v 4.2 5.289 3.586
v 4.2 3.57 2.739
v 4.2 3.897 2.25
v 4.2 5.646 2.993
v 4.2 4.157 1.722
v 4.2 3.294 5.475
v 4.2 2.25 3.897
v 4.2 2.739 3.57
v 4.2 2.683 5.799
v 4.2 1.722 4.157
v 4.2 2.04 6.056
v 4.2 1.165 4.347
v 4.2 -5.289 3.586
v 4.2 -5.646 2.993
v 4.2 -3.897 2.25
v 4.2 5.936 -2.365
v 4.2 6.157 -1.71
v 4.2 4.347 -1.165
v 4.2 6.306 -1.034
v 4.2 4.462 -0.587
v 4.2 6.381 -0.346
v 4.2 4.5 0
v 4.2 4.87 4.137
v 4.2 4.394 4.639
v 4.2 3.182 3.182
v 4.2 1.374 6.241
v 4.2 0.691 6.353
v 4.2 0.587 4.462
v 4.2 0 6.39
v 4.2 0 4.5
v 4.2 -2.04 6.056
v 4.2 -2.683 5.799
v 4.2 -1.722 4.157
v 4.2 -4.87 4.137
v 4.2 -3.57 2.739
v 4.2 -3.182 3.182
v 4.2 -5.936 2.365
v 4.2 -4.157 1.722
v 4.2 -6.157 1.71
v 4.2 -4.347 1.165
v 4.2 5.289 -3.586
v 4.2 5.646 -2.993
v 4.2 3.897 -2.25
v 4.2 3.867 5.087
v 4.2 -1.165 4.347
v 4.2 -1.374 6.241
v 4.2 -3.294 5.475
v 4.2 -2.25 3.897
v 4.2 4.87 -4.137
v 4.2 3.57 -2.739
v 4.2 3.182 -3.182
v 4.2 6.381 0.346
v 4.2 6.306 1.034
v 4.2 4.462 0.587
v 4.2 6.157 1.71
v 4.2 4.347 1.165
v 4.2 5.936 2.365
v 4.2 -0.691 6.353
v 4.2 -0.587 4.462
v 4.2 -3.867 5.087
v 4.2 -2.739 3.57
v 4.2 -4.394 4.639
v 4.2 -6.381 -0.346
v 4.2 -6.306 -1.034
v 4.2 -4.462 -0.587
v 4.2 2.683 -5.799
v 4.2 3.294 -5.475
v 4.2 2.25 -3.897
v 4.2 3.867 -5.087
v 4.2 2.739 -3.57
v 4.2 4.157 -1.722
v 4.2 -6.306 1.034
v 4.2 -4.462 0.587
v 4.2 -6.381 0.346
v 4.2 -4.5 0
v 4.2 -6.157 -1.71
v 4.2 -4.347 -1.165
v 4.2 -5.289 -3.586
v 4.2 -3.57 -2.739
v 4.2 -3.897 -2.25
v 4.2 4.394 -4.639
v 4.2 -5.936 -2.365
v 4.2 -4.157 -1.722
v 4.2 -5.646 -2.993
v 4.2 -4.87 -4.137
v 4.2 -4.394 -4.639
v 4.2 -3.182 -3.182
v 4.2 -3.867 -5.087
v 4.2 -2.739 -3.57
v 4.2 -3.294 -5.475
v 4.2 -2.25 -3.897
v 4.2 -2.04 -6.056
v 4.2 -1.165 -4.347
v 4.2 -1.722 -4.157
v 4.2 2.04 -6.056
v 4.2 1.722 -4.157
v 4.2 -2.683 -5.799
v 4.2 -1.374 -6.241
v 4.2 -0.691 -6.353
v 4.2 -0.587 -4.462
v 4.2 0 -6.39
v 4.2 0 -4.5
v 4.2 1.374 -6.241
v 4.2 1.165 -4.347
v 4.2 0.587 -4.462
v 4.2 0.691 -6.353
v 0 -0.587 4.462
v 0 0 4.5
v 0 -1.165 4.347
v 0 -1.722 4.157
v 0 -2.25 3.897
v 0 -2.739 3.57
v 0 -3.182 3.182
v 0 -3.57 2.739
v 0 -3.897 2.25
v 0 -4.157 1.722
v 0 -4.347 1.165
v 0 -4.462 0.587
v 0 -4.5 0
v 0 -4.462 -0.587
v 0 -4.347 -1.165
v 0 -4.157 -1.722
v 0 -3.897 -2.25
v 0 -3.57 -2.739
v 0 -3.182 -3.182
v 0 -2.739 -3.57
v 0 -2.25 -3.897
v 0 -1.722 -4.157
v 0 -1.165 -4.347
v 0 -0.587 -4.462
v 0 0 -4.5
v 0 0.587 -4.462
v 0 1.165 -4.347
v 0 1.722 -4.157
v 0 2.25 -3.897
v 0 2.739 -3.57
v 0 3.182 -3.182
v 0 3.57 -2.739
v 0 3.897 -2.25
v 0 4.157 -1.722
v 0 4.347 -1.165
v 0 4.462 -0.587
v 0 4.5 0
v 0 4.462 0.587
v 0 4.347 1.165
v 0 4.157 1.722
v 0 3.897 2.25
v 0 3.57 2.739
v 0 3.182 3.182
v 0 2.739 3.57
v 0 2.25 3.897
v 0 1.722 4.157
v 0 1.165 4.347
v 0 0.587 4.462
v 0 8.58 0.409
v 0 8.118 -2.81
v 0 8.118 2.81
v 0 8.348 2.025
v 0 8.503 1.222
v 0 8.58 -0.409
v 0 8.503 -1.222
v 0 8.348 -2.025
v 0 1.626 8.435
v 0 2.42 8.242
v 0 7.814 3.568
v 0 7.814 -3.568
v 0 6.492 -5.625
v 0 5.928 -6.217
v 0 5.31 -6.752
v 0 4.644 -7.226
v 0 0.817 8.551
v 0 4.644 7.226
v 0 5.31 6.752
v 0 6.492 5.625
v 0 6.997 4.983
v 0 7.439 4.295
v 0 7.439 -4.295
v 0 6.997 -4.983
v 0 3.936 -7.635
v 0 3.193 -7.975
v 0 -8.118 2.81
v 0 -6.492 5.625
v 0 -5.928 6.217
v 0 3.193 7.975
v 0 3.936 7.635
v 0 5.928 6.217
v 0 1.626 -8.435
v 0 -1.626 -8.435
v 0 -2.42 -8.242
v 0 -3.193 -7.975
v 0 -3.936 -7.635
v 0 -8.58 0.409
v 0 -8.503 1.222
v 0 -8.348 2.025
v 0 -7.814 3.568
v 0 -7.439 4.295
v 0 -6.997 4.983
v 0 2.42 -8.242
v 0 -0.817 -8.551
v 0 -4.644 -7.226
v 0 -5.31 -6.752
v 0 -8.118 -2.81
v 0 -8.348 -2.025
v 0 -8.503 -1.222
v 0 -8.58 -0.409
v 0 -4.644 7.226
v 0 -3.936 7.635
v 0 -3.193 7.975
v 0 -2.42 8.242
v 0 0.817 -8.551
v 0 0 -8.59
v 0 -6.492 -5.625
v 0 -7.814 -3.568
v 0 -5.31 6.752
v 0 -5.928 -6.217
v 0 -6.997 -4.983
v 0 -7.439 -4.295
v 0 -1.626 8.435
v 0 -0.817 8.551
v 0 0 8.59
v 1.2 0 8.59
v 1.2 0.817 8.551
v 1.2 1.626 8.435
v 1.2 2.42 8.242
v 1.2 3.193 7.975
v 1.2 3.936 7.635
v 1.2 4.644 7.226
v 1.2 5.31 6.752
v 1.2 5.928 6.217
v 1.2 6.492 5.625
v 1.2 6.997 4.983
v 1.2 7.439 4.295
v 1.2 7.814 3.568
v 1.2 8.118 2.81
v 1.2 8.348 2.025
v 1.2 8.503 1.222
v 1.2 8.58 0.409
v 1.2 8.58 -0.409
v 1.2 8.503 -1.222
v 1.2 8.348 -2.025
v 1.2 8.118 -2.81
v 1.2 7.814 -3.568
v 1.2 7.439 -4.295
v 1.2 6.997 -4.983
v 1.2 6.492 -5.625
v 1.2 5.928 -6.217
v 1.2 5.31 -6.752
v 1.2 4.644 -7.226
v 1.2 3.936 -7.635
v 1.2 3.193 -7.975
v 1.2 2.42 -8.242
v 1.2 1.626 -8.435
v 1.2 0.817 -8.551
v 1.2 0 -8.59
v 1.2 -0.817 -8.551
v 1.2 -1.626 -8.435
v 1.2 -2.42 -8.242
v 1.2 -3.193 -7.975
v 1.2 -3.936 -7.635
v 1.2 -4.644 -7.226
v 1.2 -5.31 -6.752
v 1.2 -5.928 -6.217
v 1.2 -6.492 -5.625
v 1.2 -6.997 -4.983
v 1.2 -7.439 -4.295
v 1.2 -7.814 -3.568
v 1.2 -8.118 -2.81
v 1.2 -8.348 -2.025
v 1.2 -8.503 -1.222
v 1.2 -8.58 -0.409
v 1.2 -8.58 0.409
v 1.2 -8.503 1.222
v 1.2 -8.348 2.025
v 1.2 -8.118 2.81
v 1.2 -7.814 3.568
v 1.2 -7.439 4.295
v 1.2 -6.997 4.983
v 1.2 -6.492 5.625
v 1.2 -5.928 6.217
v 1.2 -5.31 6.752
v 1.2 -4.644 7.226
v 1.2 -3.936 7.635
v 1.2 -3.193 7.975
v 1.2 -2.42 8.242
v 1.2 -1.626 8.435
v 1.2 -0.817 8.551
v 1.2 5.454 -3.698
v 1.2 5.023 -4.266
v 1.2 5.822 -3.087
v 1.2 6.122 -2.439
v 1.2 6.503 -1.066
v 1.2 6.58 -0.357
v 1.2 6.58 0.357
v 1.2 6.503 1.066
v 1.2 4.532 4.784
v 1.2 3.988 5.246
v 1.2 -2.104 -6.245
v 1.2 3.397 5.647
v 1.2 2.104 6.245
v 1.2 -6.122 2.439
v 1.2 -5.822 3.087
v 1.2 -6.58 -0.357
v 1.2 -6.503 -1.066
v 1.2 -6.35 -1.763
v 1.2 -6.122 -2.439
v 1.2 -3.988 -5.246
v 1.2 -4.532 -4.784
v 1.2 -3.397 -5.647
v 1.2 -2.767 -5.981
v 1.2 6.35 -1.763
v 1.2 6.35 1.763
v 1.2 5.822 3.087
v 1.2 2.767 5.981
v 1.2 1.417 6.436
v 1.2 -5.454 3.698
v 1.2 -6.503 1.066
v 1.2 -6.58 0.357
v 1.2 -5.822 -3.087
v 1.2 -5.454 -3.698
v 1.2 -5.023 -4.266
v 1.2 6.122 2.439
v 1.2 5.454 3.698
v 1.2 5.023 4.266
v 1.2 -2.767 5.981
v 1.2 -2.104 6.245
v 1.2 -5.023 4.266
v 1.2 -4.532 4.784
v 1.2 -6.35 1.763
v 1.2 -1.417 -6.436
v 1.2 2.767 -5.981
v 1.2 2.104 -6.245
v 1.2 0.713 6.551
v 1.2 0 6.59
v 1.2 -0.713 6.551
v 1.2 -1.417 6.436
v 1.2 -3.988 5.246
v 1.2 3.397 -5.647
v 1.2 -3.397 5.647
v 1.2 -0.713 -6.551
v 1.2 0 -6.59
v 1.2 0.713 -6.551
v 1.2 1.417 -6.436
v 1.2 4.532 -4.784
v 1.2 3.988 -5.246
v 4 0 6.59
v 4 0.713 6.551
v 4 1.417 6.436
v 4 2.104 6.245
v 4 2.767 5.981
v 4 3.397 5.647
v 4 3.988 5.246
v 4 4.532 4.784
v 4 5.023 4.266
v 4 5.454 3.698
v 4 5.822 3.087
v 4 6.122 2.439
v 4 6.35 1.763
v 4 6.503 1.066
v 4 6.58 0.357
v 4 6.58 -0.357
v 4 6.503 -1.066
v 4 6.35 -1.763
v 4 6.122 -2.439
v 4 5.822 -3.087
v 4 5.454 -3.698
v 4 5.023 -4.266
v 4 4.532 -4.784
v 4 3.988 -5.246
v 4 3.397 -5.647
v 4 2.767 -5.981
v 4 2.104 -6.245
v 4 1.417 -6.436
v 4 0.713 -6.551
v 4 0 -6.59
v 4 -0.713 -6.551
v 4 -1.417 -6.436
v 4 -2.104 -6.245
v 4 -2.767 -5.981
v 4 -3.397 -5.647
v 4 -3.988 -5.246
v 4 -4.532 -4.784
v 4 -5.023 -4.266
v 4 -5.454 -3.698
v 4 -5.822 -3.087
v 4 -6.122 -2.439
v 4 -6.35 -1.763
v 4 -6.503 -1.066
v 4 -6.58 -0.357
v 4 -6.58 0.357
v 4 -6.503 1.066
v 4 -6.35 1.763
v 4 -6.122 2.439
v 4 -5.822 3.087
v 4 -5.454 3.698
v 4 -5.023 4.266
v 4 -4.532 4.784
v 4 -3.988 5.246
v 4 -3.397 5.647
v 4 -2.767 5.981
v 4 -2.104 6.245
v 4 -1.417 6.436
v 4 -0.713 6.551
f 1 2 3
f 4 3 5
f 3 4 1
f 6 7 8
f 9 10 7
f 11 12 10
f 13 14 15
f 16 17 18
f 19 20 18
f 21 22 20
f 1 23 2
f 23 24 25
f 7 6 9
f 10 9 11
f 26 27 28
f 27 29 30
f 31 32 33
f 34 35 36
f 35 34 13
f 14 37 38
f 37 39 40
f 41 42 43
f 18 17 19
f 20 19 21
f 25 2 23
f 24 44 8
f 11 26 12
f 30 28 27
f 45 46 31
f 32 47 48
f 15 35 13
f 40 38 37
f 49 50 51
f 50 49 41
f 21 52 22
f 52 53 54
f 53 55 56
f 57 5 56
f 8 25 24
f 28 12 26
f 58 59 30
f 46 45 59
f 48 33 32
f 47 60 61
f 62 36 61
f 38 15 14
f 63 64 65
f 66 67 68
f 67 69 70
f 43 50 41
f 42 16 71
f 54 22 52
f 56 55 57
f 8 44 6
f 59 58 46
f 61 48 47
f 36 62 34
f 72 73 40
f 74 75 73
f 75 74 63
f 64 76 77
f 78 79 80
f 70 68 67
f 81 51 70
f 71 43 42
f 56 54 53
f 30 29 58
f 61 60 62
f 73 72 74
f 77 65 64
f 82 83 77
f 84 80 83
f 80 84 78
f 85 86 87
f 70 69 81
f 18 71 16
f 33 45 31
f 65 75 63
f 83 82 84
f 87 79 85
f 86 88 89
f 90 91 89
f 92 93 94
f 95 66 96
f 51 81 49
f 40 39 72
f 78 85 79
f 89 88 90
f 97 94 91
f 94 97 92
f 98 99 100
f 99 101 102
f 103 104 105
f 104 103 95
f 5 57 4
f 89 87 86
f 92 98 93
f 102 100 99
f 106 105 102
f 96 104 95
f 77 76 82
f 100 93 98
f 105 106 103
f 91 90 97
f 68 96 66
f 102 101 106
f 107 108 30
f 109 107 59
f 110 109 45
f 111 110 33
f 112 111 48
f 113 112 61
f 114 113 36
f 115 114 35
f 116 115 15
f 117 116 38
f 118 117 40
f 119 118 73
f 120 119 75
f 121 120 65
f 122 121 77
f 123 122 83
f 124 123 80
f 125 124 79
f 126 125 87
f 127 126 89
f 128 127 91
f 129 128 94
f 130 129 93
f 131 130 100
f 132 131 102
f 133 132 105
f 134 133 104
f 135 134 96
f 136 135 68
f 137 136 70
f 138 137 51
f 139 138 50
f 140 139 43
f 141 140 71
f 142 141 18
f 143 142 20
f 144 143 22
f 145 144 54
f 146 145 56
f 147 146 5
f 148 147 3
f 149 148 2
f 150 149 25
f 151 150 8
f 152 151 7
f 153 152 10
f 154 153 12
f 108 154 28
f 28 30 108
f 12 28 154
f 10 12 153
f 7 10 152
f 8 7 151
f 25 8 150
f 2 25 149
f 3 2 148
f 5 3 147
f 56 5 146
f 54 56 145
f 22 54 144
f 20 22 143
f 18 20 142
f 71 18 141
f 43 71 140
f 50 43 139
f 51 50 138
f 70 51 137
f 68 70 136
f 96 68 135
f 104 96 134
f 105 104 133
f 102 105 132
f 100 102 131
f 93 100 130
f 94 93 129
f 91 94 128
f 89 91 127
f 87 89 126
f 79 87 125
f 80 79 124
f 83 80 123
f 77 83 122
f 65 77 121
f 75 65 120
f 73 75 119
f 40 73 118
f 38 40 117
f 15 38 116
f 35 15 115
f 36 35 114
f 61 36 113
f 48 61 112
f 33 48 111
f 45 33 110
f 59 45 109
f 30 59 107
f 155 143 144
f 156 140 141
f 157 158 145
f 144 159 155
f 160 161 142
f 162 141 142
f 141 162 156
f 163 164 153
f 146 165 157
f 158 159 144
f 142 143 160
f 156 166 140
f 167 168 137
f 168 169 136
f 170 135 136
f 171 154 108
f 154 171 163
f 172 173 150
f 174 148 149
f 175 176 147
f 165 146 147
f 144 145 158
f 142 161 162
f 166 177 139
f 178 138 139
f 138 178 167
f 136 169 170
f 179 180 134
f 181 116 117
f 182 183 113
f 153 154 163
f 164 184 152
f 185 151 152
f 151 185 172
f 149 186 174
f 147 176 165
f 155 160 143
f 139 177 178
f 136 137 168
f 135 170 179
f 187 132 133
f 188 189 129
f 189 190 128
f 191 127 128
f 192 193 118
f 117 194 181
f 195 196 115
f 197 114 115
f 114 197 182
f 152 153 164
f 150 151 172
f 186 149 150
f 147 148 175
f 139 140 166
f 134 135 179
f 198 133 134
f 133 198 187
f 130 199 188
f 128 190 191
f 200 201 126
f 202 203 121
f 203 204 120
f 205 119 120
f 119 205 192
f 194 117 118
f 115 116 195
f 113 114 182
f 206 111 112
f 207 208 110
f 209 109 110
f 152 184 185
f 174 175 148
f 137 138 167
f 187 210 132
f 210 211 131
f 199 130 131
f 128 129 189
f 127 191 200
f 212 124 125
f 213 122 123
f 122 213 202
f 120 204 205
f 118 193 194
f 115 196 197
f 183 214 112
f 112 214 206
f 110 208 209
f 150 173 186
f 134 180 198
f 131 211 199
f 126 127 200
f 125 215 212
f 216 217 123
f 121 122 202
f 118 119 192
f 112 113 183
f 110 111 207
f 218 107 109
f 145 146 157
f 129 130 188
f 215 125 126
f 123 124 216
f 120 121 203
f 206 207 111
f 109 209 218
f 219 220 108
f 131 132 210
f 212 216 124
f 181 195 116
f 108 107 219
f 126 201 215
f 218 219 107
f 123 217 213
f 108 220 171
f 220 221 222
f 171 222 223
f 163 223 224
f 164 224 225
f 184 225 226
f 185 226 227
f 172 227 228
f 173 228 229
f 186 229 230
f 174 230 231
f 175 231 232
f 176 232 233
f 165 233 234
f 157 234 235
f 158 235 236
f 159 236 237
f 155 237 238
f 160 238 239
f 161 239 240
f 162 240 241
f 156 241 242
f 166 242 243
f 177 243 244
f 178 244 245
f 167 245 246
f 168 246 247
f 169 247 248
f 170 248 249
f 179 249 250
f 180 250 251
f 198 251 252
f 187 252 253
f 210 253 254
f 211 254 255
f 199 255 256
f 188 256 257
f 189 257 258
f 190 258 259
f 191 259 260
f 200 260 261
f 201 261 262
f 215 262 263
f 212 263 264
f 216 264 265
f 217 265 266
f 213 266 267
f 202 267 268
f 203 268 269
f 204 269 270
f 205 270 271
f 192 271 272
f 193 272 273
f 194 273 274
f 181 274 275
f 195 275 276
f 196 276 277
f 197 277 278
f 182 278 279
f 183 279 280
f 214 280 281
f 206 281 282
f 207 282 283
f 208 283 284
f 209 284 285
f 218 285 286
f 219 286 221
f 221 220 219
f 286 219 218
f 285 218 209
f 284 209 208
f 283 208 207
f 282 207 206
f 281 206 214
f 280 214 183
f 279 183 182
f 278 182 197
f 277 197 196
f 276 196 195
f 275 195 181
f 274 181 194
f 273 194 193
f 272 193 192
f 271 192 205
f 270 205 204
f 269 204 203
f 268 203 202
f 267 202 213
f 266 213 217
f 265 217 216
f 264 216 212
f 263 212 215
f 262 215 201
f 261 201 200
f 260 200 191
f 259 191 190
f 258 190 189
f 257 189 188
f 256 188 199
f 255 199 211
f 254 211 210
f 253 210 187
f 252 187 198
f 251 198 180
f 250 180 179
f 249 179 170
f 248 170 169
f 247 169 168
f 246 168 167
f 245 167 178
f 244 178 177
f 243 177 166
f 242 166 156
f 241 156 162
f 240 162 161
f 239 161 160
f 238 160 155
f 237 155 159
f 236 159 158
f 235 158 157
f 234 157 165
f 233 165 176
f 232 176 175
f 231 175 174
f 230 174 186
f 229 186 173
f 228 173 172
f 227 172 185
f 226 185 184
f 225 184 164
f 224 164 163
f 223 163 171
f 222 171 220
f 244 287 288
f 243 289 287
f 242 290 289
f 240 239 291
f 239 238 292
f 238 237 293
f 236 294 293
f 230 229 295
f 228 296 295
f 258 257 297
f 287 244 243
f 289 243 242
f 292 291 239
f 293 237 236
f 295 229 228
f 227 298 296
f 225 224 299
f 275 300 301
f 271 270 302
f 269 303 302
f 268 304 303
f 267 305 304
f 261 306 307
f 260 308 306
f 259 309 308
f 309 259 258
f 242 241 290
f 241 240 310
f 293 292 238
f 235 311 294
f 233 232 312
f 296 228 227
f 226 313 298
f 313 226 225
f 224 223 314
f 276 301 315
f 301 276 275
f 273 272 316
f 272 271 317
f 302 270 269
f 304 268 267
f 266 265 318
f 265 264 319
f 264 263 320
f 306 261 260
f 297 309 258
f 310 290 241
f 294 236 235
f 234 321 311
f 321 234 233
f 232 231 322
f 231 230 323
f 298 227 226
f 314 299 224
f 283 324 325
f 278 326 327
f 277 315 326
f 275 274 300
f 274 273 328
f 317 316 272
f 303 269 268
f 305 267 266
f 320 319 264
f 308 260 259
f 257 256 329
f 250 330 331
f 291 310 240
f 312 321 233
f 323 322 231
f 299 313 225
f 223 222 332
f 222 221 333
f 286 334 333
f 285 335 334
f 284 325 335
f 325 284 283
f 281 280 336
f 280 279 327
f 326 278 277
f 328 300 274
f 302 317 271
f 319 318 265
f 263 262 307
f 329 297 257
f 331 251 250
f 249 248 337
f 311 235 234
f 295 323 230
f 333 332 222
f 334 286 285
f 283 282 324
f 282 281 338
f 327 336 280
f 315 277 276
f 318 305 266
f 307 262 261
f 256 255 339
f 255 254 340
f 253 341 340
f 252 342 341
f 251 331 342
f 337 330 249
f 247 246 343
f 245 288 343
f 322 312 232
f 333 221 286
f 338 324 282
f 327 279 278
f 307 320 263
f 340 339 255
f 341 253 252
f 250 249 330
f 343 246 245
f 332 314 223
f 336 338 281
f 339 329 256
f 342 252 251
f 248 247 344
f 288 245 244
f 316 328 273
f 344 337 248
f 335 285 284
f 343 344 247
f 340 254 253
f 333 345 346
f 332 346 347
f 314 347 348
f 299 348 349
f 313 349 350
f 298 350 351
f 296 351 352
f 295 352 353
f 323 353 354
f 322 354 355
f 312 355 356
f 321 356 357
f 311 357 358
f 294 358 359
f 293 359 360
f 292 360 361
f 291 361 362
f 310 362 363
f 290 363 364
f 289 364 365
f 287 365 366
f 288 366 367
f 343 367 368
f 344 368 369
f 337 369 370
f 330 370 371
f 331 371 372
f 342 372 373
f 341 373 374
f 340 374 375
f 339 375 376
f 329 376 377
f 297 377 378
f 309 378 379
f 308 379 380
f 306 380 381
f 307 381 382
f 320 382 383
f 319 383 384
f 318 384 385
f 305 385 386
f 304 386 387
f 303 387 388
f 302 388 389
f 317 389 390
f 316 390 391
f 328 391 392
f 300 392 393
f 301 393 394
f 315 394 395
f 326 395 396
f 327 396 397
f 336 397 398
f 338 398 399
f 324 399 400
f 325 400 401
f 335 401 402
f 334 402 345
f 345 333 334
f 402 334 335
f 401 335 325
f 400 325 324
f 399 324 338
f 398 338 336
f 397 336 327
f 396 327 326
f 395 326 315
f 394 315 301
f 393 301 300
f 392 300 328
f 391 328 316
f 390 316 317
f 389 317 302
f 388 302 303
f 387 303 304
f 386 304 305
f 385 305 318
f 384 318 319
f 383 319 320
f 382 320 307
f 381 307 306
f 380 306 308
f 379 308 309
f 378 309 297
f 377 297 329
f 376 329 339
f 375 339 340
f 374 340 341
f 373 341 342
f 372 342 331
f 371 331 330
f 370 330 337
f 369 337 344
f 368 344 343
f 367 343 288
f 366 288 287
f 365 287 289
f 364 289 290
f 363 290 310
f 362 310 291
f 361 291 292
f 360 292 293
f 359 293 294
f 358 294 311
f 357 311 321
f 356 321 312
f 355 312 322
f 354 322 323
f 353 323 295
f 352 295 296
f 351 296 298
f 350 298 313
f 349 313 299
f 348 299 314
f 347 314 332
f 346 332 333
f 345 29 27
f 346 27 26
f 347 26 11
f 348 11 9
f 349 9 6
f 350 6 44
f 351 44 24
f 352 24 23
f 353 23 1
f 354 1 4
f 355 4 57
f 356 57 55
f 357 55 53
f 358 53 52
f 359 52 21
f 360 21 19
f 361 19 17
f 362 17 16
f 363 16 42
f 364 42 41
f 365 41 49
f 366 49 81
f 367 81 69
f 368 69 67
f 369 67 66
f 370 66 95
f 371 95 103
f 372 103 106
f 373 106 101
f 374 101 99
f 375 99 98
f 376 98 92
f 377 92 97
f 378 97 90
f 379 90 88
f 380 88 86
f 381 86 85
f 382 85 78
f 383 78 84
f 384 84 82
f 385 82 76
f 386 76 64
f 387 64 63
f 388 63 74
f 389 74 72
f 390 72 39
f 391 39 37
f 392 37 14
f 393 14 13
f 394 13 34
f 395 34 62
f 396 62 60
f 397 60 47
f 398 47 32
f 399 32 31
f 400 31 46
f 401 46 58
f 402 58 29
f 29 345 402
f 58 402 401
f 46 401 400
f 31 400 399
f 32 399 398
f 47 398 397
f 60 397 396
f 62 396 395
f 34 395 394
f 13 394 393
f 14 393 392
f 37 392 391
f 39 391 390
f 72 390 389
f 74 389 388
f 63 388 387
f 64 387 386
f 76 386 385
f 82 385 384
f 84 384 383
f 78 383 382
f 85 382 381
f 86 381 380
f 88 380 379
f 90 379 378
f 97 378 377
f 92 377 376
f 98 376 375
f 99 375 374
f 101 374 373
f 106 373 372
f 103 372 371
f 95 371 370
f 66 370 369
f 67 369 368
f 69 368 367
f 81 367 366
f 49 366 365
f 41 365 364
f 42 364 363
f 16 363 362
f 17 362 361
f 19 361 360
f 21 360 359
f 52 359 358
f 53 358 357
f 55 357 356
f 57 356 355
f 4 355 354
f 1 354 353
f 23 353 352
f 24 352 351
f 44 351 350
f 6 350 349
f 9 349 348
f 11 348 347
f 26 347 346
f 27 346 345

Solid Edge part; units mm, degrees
sketch "Sketch1" plane through (0, 0, 0) normal (0, -1, 0) x (1, 0, 0)
  line L0 (4.2, 4.5) -> (0, 4.5)
  line L1 (0, 4.5) -> (0, 8.59)
  line L2 (0, 8.59) -> (1.2, 8.59)
  line L3 (1.2, 8.59) -> (1.2, 6.59)
  line L4 (1.2, 6.59) -> (4.2, 6.59)
  line L5 (4.2, 6.59) -> (4.2, 4.5)
revolve "RevolvedProtrusion1" add sketch "Sketch1" angle 360 about axis through (0, 0, 0) along (1, 0, 0)
chamfer "Chamfer1" distance 0.2 angle 45 1 edges at (4.2, 0, -6.59)
